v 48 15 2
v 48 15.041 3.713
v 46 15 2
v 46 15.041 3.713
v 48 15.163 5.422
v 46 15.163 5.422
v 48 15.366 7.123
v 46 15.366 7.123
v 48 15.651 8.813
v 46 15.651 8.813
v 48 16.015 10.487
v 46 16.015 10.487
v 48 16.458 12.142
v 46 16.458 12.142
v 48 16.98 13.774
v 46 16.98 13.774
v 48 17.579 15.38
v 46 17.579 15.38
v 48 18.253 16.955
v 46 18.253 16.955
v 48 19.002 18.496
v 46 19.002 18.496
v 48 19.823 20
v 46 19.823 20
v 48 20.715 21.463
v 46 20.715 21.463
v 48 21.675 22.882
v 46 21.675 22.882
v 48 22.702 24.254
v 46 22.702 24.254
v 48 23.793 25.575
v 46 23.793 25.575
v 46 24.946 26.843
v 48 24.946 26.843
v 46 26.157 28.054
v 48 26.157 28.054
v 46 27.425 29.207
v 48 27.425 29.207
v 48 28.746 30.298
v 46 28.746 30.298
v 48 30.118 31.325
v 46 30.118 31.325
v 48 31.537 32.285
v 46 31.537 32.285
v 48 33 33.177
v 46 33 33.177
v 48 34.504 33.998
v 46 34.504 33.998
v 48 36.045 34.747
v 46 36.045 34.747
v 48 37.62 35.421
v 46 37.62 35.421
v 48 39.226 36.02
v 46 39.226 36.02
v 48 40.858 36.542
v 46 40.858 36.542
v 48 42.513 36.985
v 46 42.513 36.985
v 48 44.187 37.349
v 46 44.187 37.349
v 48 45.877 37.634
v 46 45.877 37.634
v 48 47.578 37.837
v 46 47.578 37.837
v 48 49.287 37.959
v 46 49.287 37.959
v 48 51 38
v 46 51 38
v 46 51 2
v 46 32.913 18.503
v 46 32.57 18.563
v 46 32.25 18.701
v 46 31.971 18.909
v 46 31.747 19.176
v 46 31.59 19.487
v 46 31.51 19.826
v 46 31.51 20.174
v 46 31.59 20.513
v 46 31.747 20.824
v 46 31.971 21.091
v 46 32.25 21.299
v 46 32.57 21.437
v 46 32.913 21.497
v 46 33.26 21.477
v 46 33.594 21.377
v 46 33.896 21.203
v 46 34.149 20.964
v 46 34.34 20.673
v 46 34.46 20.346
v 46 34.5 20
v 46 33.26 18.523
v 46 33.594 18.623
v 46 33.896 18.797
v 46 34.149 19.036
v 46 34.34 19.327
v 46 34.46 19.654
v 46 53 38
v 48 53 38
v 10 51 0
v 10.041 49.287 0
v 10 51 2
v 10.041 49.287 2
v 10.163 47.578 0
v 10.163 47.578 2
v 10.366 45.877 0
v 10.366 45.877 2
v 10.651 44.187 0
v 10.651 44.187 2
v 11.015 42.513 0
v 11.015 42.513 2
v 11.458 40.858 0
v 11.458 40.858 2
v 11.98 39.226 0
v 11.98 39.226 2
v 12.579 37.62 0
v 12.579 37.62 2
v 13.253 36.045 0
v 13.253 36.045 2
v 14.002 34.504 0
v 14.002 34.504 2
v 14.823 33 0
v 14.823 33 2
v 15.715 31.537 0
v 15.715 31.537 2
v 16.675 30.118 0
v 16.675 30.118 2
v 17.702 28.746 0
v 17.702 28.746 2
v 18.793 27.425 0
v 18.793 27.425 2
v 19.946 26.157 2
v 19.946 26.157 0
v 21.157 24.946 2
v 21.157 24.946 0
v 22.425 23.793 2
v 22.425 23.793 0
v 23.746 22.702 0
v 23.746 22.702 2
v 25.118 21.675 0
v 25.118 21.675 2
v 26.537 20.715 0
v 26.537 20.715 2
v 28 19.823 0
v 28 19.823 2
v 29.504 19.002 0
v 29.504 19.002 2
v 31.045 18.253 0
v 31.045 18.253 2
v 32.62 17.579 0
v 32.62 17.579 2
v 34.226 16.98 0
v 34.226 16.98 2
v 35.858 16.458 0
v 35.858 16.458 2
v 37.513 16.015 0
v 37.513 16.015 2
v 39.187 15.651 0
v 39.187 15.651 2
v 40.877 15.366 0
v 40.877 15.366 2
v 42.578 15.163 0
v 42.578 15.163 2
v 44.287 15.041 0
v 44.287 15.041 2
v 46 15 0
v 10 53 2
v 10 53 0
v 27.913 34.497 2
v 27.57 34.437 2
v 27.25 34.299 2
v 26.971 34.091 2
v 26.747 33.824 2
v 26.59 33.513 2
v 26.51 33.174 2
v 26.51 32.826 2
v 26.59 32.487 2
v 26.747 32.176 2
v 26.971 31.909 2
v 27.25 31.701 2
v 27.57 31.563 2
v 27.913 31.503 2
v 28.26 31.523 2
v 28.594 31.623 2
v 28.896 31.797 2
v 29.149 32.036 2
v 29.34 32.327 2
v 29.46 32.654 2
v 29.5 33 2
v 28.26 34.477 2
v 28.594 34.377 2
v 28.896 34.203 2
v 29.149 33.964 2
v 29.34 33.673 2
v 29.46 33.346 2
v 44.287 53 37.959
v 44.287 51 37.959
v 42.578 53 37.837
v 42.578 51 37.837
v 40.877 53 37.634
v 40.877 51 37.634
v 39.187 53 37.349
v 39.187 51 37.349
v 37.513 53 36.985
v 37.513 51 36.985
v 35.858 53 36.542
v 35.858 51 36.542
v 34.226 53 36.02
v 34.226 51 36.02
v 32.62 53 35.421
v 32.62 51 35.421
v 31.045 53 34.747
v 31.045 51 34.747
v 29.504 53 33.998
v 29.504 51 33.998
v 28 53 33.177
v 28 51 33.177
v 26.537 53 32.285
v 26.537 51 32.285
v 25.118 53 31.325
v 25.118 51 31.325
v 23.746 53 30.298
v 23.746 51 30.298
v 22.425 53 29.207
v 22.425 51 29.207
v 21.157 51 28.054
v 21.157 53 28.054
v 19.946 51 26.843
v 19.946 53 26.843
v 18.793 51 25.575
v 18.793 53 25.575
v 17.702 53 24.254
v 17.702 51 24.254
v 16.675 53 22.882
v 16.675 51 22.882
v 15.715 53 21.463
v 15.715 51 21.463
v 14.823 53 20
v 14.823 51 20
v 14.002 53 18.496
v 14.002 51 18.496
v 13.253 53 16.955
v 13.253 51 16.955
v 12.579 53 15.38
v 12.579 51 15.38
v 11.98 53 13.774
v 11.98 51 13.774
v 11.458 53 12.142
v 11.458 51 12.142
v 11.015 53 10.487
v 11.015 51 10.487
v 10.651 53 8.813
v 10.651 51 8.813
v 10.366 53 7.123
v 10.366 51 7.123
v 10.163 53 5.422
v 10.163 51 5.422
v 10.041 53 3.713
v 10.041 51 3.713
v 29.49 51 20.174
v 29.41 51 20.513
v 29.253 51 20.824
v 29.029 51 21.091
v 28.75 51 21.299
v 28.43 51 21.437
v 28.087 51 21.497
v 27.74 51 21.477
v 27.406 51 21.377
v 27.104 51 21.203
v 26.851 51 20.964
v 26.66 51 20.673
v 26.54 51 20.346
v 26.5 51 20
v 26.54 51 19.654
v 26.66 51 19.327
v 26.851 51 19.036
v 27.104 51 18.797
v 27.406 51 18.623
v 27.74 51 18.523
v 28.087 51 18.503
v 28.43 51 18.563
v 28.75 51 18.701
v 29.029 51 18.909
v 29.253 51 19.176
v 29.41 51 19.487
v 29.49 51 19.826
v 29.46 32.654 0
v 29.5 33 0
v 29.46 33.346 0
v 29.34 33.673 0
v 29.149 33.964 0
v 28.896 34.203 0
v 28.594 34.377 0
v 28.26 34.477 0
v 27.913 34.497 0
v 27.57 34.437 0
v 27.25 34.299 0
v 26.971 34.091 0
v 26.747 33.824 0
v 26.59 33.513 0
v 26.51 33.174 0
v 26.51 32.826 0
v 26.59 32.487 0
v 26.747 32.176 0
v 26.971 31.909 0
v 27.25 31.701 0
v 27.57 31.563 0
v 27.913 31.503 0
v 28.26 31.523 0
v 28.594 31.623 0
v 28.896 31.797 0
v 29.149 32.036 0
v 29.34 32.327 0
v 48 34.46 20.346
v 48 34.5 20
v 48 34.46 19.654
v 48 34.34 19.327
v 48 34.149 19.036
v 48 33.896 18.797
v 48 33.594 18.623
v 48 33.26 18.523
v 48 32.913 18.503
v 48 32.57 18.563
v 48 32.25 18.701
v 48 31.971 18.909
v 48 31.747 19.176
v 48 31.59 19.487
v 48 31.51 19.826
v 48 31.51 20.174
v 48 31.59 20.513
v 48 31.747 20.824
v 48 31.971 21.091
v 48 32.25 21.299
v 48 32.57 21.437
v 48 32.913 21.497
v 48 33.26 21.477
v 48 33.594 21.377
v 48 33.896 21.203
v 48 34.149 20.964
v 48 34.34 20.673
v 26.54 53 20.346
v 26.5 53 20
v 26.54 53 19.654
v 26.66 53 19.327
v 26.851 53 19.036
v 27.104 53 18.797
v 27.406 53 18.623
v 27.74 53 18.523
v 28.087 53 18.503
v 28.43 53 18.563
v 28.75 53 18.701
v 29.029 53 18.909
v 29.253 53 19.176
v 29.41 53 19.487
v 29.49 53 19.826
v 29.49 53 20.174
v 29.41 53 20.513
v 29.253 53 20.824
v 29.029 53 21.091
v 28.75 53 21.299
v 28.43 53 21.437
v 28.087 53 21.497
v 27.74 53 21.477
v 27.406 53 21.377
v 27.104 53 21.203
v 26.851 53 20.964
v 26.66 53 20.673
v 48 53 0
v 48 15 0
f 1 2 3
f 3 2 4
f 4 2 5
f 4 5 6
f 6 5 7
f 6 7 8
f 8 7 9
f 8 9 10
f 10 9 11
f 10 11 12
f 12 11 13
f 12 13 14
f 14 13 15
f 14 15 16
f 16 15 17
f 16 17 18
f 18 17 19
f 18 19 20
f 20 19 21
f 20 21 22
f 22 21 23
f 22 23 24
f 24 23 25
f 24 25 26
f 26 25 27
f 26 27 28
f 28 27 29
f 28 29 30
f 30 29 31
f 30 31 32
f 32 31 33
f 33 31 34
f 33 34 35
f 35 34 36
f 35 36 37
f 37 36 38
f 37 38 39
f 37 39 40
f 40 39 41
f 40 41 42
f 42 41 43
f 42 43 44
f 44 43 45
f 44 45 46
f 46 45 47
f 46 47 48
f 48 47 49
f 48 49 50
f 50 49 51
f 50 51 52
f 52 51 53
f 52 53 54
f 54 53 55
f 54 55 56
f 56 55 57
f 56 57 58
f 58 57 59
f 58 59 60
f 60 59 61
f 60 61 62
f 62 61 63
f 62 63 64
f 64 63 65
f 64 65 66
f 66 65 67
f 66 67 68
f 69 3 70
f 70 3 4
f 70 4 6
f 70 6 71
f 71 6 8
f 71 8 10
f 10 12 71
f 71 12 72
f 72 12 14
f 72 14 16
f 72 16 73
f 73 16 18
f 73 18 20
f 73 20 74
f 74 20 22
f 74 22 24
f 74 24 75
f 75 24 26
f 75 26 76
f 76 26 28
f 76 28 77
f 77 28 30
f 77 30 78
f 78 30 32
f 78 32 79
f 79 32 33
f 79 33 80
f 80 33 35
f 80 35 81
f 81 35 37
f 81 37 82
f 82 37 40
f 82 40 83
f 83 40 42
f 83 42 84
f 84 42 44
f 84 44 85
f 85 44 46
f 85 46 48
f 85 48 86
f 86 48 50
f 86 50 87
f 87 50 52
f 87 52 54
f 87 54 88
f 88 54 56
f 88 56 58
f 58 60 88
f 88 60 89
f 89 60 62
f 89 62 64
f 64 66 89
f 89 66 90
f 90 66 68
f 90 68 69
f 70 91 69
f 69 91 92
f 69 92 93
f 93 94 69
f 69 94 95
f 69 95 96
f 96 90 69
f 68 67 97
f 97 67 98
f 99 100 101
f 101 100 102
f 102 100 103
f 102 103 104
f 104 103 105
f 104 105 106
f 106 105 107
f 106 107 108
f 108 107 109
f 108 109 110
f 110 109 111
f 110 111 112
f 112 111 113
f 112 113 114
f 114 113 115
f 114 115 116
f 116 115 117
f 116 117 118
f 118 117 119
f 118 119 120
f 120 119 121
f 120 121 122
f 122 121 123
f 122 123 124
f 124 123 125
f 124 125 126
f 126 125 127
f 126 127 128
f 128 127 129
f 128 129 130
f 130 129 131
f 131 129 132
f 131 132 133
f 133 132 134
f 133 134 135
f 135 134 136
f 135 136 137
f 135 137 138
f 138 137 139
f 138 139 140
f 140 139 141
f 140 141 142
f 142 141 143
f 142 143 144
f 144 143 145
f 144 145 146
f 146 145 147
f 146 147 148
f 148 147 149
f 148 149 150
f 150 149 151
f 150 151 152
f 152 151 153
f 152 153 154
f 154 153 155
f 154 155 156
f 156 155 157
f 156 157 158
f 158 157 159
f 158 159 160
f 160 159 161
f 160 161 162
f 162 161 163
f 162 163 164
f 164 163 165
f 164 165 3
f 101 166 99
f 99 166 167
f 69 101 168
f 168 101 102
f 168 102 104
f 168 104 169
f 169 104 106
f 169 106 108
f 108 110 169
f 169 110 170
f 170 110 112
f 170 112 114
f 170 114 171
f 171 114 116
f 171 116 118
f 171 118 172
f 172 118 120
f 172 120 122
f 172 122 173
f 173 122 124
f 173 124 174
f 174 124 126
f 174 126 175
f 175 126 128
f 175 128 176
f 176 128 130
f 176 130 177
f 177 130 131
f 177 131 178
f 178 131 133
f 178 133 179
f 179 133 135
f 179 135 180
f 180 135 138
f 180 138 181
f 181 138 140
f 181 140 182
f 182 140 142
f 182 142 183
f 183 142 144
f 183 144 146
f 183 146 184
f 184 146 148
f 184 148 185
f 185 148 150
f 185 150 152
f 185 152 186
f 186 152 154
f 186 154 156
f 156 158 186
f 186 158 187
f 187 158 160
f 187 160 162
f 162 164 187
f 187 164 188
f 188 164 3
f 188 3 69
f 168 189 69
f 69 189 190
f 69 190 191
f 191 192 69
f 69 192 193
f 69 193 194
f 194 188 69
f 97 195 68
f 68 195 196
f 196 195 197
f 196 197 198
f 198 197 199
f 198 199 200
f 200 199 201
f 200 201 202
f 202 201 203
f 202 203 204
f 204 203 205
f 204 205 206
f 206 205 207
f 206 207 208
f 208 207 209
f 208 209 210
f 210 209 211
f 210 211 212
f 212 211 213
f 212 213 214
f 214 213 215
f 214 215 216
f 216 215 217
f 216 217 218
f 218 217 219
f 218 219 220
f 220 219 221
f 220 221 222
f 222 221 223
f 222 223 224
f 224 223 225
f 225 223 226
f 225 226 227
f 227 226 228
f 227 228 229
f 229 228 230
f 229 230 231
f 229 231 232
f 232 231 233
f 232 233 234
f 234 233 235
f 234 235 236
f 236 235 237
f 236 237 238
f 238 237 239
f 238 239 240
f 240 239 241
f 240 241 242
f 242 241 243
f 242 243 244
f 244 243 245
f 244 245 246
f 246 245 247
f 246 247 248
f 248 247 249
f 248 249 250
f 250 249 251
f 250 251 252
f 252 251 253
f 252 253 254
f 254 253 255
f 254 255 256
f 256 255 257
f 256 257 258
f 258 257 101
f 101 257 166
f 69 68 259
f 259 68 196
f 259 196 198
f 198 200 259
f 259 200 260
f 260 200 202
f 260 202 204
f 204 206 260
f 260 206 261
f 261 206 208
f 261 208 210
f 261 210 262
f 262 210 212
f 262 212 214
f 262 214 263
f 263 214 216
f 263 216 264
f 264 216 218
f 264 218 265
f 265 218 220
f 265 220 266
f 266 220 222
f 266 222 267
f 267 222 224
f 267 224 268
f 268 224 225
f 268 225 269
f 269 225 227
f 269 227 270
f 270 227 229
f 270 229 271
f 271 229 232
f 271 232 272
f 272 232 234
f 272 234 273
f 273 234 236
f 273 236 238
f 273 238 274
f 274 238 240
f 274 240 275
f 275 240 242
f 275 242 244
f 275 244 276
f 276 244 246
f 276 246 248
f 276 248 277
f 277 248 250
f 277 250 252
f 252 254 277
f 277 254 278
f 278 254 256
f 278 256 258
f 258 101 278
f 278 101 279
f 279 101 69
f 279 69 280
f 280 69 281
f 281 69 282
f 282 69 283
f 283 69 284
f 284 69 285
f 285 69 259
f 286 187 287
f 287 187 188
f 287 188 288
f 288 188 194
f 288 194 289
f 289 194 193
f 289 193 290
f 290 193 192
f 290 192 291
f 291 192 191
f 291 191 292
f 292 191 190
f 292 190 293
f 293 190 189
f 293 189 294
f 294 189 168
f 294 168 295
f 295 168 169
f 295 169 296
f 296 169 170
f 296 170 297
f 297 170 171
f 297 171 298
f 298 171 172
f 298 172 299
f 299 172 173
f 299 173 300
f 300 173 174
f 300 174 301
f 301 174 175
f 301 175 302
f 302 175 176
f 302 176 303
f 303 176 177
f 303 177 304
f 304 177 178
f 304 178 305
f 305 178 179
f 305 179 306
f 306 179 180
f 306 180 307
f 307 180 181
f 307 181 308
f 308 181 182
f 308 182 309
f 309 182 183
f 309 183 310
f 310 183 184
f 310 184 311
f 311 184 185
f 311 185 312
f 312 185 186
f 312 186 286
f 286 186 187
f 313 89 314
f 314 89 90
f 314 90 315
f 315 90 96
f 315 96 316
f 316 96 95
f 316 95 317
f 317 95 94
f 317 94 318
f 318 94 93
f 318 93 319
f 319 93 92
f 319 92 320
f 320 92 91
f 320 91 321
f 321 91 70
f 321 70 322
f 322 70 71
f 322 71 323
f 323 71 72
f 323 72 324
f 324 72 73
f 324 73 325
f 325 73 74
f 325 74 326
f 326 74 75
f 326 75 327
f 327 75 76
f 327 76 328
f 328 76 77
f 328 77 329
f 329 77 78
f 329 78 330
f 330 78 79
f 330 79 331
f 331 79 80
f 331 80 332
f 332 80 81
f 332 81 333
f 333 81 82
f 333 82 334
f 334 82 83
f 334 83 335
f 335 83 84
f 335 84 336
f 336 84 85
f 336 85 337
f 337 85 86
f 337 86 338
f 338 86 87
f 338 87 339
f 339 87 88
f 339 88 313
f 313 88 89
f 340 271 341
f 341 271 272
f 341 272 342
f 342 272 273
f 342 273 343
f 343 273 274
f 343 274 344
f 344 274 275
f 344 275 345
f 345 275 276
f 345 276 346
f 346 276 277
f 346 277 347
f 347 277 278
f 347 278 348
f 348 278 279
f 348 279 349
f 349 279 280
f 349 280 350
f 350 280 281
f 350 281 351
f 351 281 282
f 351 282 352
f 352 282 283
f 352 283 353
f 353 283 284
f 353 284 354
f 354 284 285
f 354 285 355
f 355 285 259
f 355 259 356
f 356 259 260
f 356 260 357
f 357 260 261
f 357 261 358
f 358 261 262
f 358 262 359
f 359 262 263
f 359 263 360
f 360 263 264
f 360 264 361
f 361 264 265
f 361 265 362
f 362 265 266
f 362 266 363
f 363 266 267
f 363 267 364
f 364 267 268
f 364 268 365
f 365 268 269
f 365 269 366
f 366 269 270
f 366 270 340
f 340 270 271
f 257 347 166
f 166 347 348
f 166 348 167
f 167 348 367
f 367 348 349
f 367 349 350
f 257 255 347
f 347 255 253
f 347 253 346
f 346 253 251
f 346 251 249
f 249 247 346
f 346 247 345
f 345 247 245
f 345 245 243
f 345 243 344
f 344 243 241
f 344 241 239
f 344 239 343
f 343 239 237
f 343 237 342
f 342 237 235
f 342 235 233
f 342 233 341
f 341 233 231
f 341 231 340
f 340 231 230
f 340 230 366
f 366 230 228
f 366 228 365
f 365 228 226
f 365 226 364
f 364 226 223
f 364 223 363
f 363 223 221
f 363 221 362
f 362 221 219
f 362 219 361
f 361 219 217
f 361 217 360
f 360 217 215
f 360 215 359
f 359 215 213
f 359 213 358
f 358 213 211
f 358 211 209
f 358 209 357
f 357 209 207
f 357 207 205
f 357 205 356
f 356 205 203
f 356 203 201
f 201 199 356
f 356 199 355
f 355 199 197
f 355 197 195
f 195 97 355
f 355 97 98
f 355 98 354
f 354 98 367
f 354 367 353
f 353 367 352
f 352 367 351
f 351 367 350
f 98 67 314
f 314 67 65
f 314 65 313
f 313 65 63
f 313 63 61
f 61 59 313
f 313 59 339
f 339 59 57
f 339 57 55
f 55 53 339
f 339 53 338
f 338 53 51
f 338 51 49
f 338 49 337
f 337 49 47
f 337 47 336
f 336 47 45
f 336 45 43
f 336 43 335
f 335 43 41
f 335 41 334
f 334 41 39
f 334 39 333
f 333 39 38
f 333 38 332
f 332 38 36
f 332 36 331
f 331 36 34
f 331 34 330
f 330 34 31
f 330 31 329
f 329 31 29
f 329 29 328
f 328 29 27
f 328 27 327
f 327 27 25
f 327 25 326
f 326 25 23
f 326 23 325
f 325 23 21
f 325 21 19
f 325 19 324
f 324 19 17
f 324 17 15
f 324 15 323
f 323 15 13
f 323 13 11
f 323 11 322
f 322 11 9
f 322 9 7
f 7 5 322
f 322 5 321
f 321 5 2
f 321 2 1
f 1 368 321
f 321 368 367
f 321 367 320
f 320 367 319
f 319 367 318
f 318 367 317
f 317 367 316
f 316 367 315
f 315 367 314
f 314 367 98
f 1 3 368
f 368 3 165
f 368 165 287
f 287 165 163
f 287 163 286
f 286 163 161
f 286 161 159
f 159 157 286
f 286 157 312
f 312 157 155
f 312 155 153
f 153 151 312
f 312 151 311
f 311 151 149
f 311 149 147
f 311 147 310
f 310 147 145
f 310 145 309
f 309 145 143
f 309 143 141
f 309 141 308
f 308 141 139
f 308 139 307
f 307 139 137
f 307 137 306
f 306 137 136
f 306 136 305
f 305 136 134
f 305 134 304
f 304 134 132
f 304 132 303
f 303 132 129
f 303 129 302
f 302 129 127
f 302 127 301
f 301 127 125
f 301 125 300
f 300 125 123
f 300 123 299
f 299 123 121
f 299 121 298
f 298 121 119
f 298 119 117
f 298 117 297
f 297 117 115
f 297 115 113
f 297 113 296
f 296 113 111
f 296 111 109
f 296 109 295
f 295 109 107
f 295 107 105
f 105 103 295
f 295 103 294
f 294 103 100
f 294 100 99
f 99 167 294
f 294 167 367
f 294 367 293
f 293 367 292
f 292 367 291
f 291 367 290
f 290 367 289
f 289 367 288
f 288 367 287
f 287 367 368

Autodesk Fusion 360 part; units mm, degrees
sketch "Sketch3" plane through (0, 0, 0) normal (0, 0, 1) x (1, 0, 0)
  line L0 (10, 15) -> (46, 15)
  line L1 (46, 15) -> (46, 51)
  line L2 (46, 51) -> (10, 51)
  line L3 (10, 51) -> (10, 15)
  line L4 (8, 53) -> (8, 13)
  line L5 (8, 13) -> (48, 13)
  line L6 (48, 13) -> (48, 53)
  line L7 (48, 53) -> (8, 53)
  line L8 (10, 51) -> (10, 53)
  line L9 (10, 51) -> (8, 51)
  line L10 (46, 51) -> (46, 53)
  line L11 (46, 51) -> (48, 51)
  line L12 (46, 15) -> (48, 15)
  line L13 (46, 15) -> (46, 13)
  line L14 (10, 15) -> (10, 13)
  line L15 (10, 15) -> (8, 15)
  dimension "d6" = 36
  dimension "d7" = 36
  dimension "d8" = 2
extrude "Extrude1" add sketch "Sketch3" along normal blind 38 contours L1 L6 L11 L12 | L2 L7 L8 L10 | L6 L7 L10 L11
extrude "Extrude2" add sketch "Sketch3" along normal blind 2 contours L0 L1 L2 L3
sketch "Sketch4" plane through (0, 0, 2) normal (0, 0, 1) x (-1, 0, 0)
  line L0 (-10, -51) -> (-10, -15)
  line L1 (-10, -15) -> (-46, -15)
  line L2 (-46, -15) -> (-46, -51)
  line L3 (-46, -51) -> (-10, -51)
  line L4 (-10, -51) -> (-46, -15)
  line L5 (-10, -15) -> (-46, -51)
  circle A0 centre (-28, -33) radius 1.5
  dimension "d13" = 3
sketch "Sketch5" plane through (0, 51, 0) normal (0, -1, 0) x (1, 0, 0)
  line L0 (10, 2) -> (46, 2)
  line L1 (46, 2) -> (46, 38)
  line L2 (46, 38) -> (10, 38)
  line L3 (10, 38) -> (10, 2)
  line L4 (10, 38) -> (46, 2)
  line L5 (10, 2) -> (46, 38)
  circle A0 centre (28, 20) radius 1.5
  dimension "d14" = 3
sketch "Sketch6" plane through (46, 0, 0) normal (-1, 0, 0) x (0, -1, 0)
  line L0 (-51, 2) -> (-15, 2)
  line L1 (-15, 2) -> (-15, 38)
  line L2 (-15, 38) -> (-51, 38)
  line L3 (-51, 38) -> (-51, 2)
  line L4 (-51, 38) -> (-15, 2)
  line L5 (-51, 2) -> (-15, 38)
  circle A0 centre (-33, 20) radius 1.5
  dimension "d15" = 3
extrude "Extrude3" cut sketch "Sketch5" against normal blind 7 contours L4 L5 A0 | L4 L5 A0 | L4 L5 A0 | L4 L5 A0
extrude "Extrude4" cut sketch "Sketch6" against normal blind 10 contours L4 L5 A0 | L4 L5 A0 | L4 L5 A0 | L4 L5 A0
extrude "Extrude5" cut sketch "Sketch4" against normal blind 9 contours L4 L5 A0 | L4 L5 A0 | L4 L5 A0 | L4 L5 A0
fillet "Fillet1" radius 36 3 edges at (10, 52, 38) (10, 15, 1) (47, 15, 38)
